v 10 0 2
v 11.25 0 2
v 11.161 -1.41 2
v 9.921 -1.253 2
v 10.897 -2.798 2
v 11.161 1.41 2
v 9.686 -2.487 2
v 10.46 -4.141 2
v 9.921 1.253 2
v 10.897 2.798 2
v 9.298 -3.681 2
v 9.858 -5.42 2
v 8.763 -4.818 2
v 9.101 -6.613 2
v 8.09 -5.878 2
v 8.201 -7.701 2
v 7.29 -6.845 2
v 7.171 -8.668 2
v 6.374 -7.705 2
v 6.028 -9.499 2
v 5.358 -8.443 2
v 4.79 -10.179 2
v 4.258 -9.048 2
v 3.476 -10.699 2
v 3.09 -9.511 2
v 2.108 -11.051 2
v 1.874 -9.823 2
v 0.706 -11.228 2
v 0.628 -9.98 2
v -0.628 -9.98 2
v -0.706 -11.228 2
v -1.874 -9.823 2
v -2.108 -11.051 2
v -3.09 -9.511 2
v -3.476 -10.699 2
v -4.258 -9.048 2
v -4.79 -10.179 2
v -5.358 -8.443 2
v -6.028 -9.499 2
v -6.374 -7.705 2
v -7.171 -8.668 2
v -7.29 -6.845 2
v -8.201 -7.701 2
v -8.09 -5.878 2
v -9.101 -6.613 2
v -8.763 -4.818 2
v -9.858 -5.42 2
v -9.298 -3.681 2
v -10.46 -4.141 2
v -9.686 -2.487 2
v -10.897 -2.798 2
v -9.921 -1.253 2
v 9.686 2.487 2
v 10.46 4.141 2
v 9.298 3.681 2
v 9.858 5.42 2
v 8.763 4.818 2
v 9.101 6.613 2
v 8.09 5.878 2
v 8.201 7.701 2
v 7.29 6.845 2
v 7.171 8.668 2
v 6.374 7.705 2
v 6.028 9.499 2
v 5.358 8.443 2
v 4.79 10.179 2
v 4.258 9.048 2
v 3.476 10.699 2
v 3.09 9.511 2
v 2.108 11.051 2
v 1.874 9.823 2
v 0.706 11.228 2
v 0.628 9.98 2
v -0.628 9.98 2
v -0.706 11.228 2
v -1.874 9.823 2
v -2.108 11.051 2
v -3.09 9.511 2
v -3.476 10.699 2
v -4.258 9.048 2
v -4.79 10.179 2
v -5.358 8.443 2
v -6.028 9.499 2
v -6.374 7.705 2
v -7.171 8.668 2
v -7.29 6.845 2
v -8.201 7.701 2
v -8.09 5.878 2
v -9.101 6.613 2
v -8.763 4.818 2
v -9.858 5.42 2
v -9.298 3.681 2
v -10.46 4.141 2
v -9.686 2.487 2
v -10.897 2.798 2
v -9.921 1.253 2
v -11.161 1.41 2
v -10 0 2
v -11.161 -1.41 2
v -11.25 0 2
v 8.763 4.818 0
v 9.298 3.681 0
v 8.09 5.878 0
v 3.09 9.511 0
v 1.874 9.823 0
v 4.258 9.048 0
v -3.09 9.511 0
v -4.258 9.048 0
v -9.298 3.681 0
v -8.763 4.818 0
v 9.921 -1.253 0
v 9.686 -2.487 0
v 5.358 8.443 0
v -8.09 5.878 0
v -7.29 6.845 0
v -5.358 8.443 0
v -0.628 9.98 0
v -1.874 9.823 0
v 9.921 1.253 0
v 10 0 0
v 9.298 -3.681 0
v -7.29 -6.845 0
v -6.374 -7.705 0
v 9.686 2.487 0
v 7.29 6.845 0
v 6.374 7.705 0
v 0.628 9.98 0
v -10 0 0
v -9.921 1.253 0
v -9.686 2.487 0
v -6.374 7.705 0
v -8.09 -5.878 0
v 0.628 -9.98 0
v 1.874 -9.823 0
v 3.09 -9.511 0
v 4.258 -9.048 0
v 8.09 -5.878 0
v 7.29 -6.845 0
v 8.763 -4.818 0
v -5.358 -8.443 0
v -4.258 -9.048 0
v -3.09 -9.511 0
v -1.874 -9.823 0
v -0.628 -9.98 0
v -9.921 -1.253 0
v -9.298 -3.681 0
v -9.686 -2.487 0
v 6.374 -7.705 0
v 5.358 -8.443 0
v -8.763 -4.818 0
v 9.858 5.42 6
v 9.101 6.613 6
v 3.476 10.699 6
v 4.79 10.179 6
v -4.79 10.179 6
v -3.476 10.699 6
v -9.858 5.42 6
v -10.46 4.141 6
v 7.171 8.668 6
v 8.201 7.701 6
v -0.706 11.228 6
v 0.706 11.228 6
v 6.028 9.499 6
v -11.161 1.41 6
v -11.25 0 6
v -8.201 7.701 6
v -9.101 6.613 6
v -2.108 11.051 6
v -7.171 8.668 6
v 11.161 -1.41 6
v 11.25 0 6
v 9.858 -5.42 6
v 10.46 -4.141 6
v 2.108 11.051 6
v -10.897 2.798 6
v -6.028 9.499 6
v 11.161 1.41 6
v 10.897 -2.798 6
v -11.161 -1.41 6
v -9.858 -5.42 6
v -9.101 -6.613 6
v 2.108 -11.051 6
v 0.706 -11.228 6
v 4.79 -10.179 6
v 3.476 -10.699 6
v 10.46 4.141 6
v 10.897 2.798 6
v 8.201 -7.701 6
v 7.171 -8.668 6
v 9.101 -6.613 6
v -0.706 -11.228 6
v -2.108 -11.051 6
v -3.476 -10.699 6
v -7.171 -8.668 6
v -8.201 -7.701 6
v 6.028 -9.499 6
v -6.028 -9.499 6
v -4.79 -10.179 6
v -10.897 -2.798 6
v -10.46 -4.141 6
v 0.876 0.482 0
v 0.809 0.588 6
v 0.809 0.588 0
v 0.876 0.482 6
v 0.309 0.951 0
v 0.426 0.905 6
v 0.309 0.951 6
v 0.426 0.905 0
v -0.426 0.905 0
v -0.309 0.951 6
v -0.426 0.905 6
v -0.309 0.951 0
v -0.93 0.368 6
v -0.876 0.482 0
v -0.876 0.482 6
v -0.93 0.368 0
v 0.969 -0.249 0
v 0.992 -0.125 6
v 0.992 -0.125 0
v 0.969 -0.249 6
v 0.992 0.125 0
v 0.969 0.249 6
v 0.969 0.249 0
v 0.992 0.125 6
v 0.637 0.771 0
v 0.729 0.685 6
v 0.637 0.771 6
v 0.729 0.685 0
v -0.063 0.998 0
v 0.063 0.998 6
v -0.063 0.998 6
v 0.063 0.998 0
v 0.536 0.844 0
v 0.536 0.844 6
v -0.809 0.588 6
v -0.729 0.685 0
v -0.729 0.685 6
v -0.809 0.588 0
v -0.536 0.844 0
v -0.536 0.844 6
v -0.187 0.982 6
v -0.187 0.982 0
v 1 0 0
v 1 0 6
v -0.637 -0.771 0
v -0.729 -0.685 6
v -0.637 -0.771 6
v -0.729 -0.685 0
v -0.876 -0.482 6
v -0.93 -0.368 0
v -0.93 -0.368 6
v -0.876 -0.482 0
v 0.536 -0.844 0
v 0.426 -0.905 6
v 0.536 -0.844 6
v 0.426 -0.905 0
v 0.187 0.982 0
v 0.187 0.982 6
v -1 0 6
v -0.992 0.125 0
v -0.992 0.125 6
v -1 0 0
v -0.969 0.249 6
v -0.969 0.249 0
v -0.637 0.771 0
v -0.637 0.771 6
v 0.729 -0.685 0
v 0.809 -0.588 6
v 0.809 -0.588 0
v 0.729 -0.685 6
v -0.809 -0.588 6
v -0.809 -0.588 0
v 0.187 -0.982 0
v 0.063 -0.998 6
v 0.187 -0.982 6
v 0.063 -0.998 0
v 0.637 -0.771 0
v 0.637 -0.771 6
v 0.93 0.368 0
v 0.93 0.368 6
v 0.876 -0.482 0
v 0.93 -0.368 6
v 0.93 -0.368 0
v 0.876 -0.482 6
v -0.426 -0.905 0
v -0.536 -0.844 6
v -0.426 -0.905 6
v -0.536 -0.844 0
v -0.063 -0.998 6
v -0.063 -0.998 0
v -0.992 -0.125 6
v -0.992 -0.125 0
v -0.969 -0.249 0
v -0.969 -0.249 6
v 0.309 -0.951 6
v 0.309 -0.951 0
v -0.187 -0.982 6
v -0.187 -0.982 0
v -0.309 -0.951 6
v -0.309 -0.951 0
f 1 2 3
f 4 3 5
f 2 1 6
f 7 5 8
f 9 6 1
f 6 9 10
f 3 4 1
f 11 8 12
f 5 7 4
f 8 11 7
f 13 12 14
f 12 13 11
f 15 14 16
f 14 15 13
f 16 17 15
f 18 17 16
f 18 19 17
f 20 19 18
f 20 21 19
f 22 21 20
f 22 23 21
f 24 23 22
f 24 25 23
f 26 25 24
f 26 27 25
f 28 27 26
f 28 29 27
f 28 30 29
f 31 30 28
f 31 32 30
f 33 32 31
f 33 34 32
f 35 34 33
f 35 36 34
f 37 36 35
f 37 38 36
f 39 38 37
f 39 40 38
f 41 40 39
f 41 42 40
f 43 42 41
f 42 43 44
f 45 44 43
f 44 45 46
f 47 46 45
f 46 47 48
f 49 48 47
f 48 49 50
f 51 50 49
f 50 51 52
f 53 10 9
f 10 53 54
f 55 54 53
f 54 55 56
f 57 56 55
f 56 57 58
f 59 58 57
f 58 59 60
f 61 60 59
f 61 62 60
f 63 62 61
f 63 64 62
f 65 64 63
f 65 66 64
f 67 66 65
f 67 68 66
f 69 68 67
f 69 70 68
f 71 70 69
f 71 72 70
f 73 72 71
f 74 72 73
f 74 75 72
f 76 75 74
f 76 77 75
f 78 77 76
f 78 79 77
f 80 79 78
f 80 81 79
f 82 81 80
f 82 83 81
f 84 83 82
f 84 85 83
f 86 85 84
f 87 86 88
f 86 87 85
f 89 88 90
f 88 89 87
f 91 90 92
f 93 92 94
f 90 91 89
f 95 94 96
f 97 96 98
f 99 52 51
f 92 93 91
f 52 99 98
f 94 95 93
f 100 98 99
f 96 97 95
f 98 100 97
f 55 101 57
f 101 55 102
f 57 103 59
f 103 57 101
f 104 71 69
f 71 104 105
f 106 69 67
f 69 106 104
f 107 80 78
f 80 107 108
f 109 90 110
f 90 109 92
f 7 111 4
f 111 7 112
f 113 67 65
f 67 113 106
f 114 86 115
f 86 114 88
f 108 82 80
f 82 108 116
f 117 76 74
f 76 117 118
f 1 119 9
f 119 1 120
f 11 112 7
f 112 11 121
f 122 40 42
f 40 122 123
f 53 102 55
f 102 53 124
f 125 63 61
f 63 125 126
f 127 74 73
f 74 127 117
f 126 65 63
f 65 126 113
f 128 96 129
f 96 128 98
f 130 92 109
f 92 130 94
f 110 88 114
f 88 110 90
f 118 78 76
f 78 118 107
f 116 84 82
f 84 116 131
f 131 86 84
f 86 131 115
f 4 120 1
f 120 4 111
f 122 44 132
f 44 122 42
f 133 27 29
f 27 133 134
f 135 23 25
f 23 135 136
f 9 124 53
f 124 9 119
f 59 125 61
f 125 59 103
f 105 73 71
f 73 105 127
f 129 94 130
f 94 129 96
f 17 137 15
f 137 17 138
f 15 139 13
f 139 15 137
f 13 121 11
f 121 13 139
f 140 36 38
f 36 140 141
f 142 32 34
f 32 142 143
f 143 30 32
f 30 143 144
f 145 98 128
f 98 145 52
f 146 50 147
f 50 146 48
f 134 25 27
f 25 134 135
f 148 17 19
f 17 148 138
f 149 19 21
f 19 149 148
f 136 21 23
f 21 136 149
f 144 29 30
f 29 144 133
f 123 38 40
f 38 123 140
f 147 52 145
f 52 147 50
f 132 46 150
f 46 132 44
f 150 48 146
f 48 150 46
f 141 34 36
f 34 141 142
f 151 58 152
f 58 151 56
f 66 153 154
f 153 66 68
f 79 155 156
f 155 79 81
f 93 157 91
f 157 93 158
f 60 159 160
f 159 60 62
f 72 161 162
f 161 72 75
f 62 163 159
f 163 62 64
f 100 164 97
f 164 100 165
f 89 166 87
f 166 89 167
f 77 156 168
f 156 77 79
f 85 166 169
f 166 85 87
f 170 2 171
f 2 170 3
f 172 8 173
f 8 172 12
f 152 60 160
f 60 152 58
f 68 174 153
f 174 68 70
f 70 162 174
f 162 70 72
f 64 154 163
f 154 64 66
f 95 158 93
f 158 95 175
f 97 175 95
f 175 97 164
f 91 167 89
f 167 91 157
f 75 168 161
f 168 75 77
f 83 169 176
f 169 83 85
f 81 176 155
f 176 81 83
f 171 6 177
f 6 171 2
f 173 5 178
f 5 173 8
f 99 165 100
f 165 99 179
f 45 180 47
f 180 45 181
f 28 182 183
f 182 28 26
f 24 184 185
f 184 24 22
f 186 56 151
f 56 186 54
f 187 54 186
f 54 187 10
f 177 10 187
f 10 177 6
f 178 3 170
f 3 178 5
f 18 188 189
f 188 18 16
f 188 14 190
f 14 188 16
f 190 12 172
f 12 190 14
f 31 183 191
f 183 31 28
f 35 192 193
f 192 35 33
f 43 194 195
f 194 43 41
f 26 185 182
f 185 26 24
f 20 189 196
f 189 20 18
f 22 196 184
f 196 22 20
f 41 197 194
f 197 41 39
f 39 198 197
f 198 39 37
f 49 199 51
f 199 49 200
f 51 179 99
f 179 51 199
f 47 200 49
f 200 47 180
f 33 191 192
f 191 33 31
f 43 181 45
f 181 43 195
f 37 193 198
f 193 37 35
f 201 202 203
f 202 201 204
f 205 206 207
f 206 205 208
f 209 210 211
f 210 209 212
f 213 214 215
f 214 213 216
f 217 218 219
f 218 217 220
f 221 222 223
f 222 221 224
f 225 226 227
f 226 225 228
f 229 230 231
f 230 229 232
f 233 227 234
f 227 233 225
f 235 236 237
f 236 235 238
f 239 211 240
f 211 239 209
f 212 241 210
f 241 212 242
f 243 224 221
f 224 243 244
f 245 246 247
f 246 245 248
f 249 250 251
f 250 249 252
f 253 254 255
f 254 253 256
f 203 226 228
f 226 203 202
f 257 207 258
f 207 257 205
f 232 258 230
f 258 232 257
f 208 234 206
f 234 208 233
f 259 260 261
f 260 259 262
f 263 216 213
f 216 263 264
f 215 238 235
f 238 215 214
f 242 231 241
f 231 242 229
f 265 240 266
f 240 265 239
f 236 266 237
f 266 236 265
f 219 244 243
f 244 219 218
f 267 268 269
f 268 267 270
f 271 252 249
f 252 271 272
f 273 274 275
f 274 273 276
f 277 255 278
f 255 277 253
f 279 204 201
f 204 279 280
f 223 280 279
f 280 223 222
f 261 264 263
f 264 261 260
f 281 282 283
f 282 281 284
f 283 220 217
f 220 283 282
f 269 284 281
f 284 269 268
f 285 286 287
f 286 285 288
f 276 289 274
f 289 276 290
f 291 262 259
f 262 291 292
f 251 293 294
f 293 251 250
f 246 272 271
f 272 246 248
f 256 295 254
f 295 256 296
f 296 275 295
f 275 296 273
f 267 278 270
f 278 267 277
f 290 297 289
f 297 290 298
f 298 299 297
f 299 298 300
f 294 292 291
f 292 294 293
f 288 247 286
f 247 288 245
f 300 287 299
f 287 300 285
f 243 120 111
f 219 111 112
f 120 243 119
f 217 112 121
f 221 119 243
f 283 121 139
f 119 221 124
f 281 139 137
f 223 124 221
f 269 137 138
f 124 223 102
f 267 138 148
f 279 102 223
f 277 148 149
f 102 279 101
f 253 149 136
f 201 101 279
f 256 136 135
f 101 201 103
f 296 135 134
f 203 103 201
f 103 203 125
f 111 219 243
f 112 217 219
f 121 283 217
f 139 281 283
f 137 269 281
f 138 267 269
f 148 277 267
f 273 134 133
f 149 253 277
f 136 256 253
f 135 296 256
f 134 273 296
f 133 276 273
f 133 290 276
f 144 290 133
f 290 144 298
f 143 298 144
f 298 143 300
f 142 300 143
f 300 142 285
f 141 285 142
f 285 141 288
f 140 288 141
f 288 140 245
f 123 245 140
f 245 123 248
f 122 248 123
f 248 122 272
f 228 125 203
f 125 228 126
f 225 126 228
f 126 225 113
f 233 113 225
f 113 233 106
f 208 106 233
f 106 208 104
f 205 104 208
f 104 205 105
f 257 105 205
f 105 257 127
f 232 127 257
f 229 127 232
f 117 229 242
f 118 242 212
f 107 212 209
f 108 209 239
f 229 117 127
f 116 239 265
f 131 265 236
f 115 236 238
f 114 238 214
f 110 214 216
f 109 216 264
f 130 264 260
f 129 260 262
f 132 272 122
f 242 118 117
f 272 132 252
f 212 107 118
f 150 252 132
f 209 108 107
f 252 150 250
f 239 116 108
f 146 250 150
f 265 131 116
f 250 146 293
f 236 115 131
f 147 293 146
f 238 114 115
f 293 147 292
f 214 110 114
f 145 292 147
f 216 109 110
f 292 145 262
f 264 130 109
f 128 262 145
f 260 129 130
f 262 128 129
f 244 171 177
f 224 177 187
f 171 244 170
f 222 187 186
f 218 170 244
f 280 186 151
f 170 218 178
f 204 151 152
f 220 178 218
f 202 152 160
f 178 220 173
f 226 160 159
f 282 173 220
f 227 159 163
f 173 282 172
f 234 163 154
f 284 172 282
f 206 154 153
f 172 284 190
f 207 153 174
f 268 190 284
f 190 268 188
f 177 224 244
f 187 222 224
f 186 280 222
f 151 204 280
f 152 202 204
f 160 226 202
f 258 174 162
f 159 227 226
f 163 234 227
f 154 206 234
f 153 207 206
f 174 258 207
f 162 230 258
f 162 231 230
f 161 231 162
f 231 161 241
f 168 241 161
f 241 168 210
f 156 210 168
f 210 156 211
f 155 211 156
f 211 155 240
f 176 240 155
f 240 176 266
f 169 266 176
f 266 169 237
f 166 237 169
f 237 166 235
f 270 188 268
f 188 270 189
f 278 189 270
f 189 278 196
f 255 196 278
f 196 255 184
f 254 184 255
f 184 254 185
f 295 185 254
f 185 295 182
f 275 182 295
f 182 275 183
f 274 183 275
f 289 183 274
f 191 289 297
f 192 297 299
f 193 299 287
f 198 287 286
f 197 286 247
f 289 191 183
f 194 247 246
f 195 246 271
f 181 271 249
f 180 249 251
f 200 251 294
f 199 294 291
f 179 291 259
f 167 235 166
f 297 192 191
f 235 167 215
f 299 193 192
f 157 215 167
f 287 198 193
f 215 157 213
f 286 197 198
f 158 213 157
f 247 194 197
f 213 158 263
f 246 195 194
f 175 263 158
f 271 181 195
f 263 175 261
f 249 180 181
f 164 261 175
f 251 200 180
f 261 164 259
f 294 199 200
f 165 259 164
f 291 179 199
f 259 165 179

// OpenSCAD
$fn = 50;


difference() {
	union() {
		*color(alpha = 1.0000000000, c = "gray") {
			translate(v = [0, 7, 0]) {
				linear_extrude(height = 12) {
					text(font = "Arial:style=Bold", halign = "center", size = 4.5000000000, text = "COMMENT bearing_plate_plate", valign = "center");
				}
			}
		}
		*color(alpha = 1.0000000000, c = "gray") {
			translate(v = [0, 14, 0]) {
				linear_extrude(height = 12) {
					text(font = "Arial:style=Bold", halign = "center", size = 4.5000000000, text = "COMMENT description oobb_cylinder_shape_p_type_12_depth_3_width_12_height_12_thickness_motor_servo_micro_01_shaft_p_t_12.0_radius_all_mode", valign = "center");
				}
			}
		}
		translate(v = [0, 0, -6.0000000000]) {
			cylinder(h = 12, r = 12.0000000000);
		}
		*color(alpha = 1.0000000000, c = "gray") {
			translate(v = [0, 7, 0]) {
				linear_extrude(height = 1) {
					text(font = "Arial:style=Bold", halign = "center", size = 4.5000000000, text = "COMMENT bearing_plate_slice", valign = "center");
				}
			}
		}
	}
	union() {
		translate(v = [18.0000000000, 0, -6.0000000000]) {
			rotate(a = [0, 180, 30.0000000000]) {
				difference() {
					union() {
						translate(v = [0, 0, -0.8500000000]) {
							cylinder(r1 = 1.5000000000, r2 = 2.4000000000);
						}
						translate(v = [0, 0, -12.0000000000]) {
							cylinder(h = 12, r = 1.5000000000);
						}
						translate(v = [0, 0, -12.0000000000]) {
							linear_extrude(height = 2.5000000000) {
								polygon(points = [[3.1735000000, 0.0000000000], [1.5867500000, 2.7483316189], [-1.5867500000, 2.7483316189], [-3.1735000000, 0.0000000000], [-1.5867500000, -2.7483316189], [1.5867500000, -2.7483316189]]);
							}
						}
						translate(v = [0, 0, -12.0000000000]) {
							cylinder(h = 12, r = 1.8000000000);
						}
						translate(v = [0, 0, -12.0000000000]) {
							linear_extrude(height = 2.5000000000) {
								polygon(points = [[3.1735000000, 0.0000000000], [1.5867500000, 2.7483316189], [-1.5867500000, 2.7483316189], [-3.1735000000, 0.0000000000], [-1.5867500000, -2.7483316189], [1.5867500000, -2.7483316189]]);
							}
						}
						translate(v = [0, 0, -12.0000000000]) {
							cylinder(h = 12, r = 1.5000000000);
						}
						translate(v = [0, 0, -12.0000000000]) {
							linear_extrude(height = 2.5000000000) {
								polygon(points = [[3.1735000000, 0.0000000000], [1.5867500000, 2.7483316189], [-1.5867500000, 2.7483316189], [-3.1735000000, 0.0000000000], [-1.5867500000, -2.7483316189], [1.5867500000, -2.7483316189]]);
							}
						}
					}
					union();
				}
			}
		}
		translate(v = [-18.0000000000, 0, -6.0000000000]) {
			rotate(a = [0, 180, 30.0000000000]) {
				difference() {
					union() {
						translate(v = [0, 0, -0.8500000000]) {
							cylinder(r1 = 1.5000000000, r2 = 2.4000000000);
						}
						translate(v = [0, 0, -12.0000000000]) {
							cylinder(h = 12, r = 1.5000000000);
						}
						translate(v = [0, 0, -12.0000000000]) {
							linear_extrude(height = 2.5000000000) {
								polygon(points = [[3.1735000000, 0.0000000000], [1.5867500000, 2.7483316189], [-1.5867500000, 2.7483316189], [-3.1735000000, 0.0000000000], [-1.5867500000, -2.7483316189], [1.5867500000, -2.7483316189]]);
							}
						}
						translate(v = [0, 0, -12.0000000000]) {
							cylinder(h = 12, r = 1.8000000000);
						}
						translate(v = [0, 0, -12.0000000000]) {
							linear_extrude(height = 2.5000000000) {
								polygon(points = [[3.1735000000, 0.0000000000], [1.5867500000, 2.7483316189], [-1.5867500000, 2.7483316189], [-3.1735000000, 0.0000000000], [-1.5867500000, -2.7483316189], [1.5867500000, -2.7483316189]]);
							}
						}
						translate(v = [0, 0, -12.0000000000]) {
							cylinder(h = 12, r = 1.5000000000);
						}
						translate(v = [0, 0, -12.0000000000]) {
							linear_extrude(height = 2.5000000000) {
								polygon(points = [[3.1735000000, 0.0000000000], [1.5867500000, 2.7483316189], [-1.5867500000, 2.7483316189], [-3.1735000000, 0.0000000000], [-1.5867500000, -2.7483316189], [1.5867500000, -2.7483316189]]);
							}
						}
					}
					union();
				}
			}
		}
		translate(v = [0, 18.0000000000, 6.0000000000]) {
			rotate(a = [0, 0, 0]) {
				difference() {
					union() {
						translate(v = [0, 0, -0.8500000000]) {
							cylinder(r1 = 1.5000000000, r2 = 2.4000000000);
						}
						translate(v = [0, 0, -12.0000000000]) {
							cylinder(h = 12, r = 1.5000000000);
						}
						translate(v = [0, 0, -12.0000000000]) {
							linear_extrude(height = 2.5000000000) {
								polygon(points = [[3.1735000000, 0.0000000000], [1.5867500000, 2.7483316189], [-1.5867500000, 2.7483316189], [-3.1735000000, 0.0000000000], [-1.5867500000, -2.7483316189], [1.5867500000, -2.7483316189]]);
							}
						}
						translate(v = [0, 0, -12.0000000000]) {
							cylinder(h = 12, r = 1.8000000000);
						}
						translate(v = [0, 0, -12.0000000000]) {
							linear_extrude(height = 2.5000000000) {
								polygon(points = [[3.1735000000, 0.0000000000], [1.5867500000, 2.7483316189], [-1.5867500000, 2.7483316189], [-3.1735000000, 0.0000000000], [-1.5867500000, -2.7483316189], [1.5867500000, -2.7483316189]]);
							}
						}
						translate(v = [0, 0, -12.0000000000]) {
							cylinder(h = 12, r = 1.5000000000);
						}
						translate(v = [0, 0, -12.0000000000]) {
							linear_extrude(height = 2.5000000000) {
								polygon(points = [[3.1735000000, 0.0000000000], [1.5867500000, 2.7483316189], [-1.5867500000, 2.7483316189], [-3.1735000000, 0.0000000000], [-1.5867500000, -2.7483316189], [1.5867500000, -2.7483316189]]);
							}
						}
					}
					union();
				}
			}
		}
		translate(v = [0, -18.0000000000, 6.0000000000]) {
			rotate(a = [0, 0, 0]) {
				difference() {
					union() {
						translate(v = [0, 0, -0.8500000000]) {
							cylinder(r1 = 1.5000000000, r2 = 2.4000000000);
						}
						translate(v = [0, 0, -12.0000000000]) {
							cylinder(h = 12, r = 1.5000000000);
						}
						translate(v = [0, 0, -12.0000000000]) {
							linear_extrude(height = 2.5000000000) {
								polygon(points = [[3.1735000000, 0.0000000000], [1.5867500000, 2.7483316189], [-1.5867500000, 2.7483316189], [-3.1735000000, 0.0000000000], [-1.5867500000, -2.7483316189], [1.5867500000, -2.7483316189]]);
							}
						}
						translate(v = [0, 0, -12.0000000000]) {
							cylinder(h = 12, r = 1.8000000000);
						}
						translate(v = [0, 0, -12.0000000000]) {
							linear_extrude(height = 2.5000000000) {
								polygon(points = [[3.1735000000, 0.0000000000], [1.5867500000, 2.7483316189], [-1.5867500000, 2.7483316189], [-3.1735000000, 0.0000000000], [-1.5867500000, -2.7483316189], [1.5867500000, -2.7483316189]]);
							}
						}
						translate(v = [0, 0, -12.0000000000]) {
							cylinder(h = 12, r = 1.5000000000);
						}
						translate(v = [0, 0, -12.0000000000]) {
							linear_extrude(height = 2.5000000000) {
								polygon(points = [[3.1735000000, 0.0000000000], [1.5867500000, 2.7483316189], [-1.5867500000, 2.7483316189], [-3.1735000000, 0.0000000000], [-1.5867500000, -2.7483316189], [1.5867500000, -2.7483316189]]);
							}
						}
					}
					union();
				}
			}
		}
		*color(alpha = 1.0000000000, c = "gray") {
			translate(v = [0, 14, 0]) {
				linear_extrude(height = 3) {
					text(font = "Arial:style=Bold", halign = "center", size = 4.5000000000, text = "COMMENT description oobb_bearing_shape_n_type_12_depth_3_width_3_height_12_thickness_motor_servo_micro_01_shaft_6704_bearing", valign = "center");
				}
			}
		}
		translate(v = [0, 0, -2.0000000000]) {
			union() {
				difference() {
					cylinder(h = 4, r = 13.5000000000);
					cylinder(h = 4, r = 10.0000000000);
				}
				difference() {
					translate(v = [0, 0, -50]) {
						cylinder(h = 100, r = 12.2500000000);
					}
					translate(v = [0, 0, -50]) {
						cylinder(h = 100, r = 11.2500000000);
					}
				}
			}
		}
		*color(alpha = 1.0000000000, c = "gray") {
			translate(v = [0, 14, 0]) {
				linear_extrude(height = 3) {
					text(font = "Arial:style=Bold", halign = "center", size = 4.5000000000, text = "COMMENT description oobb_holes_shape_n_type_m6_radius_name_3_width_3_height_12_thickness_motor_servo_micro_01_shaft_perimeter_miss_middle_holes", valign = "center");
				}
			}
		}
		translate(v = [-15.0000000000, -15.0000000000, -50.0000000000]) {
			cylinder(h = 100, r = 3.0000000000);
		}
		translate(v = [-15.0000000000, 15.0000000000, -50.0000000000]) {
			cylinder(h = 100, r = 3.0000000000);
		}
		translate(v = [15.0000000000, -15.0000000000, -50.0000000000]) {
			cylinder(h = 100, r = 3.0000000000);
		}
		translate(v = [15.0000000000, 15.0000000000, -50.0000000000]) {
			cylinder(h = 100, r = 3.0000000000);
		}
		*color(alpha = 1.0000000000, c = "gray") {
			translate(v = [0, 14, 0]) {
				linear_extrude(height = 3) {
					text(font = "Arial:style=Bold", halign = "center", size = 4.5000000000, text = "COMMENT description oobb_motor_servo_micro_01_shape_n_type_3_width_3_height_12_thickness_motor_servo_micro_01_shaft_shaft_part", valign = "center");
				}
			}
		}
		translate(v = [0, 0, -6.0000000000]) {
			cylinder(h = 3, r1 = 2.5000000000, r2 = 2.4000000000);
		}
		translate(v = [0, 0, -50.0000000000]) {
			cylinder(h = 100, r = 1.0000000000);
		}
		*color(alpha = 1.0000000000, c = "gray") {
			translate(v = [18.0000000000, 14, -6.0000000000]) {
				rotate(a = [0, 180, 30.0000000000]) {
					linear_extrude(height = 3) {
						text(font = "Arial:style=Bold", halign = "center", size = 4.5000000000, text = "COMMENT description oobb_screw_countersunk_shape_n_type_m3_radius_name_12_depth_18.0_0_-6.0_pos_3_width_3_height_12_thickness_motor_servo_micro_01_shaft_0_180_30.0_rot_true_nut_true_overhang", valign = "center");
					}
				}
			}
		}
		*color(alpha = 1.0000000000, c = "gray") {
			translate(v = [-18.0000000000, 14, -6.0000000000]) {
				rotate(a = [0, 180, 30.0000000000]) {
					linear_extrude(height = 3) {
						text(font = "Arial:style=Bold", halign = "center", size = 4.5000000000, text = "COMMENT description oobb_screw_countersunk_shape_n_type_m3_radius_name_12_depth_-18.0_0_-6.0_pos_3_width_3_height_12_thickness_motor_servo_micro_01_shaft_0_180_30.0_rot_true_nut_true_overhang", valign = "center");
					}
				}
			}
		}
		*color(alpha = 1.0000000000, c = "gray") {
			translate(v = [0, 32.0000000000, 6.0000000000]) {
				linear_extrude(height = 3) {
					text(font = "Arial:style=Bold", halign = "center", size = 4.5000000000, text = "COMMENT description oobb_screw_countersunk_shape_n_type_m3_radius_name_12_depth_0_18.0_6.0_pos_3_width_3_height_12_thickness_motor_servo_micro_01_shaft_0_0_0_rot_true_nut_true_overhang", valign = "center");
				}
			}
		}
		*color(alpha = 1.0000000000, c = "gray") {
			translate(v = [0, -4.0000000000, 6.0000000000]) {
				linear_extrude(height = 3) {
					text(font = "Arial:style=Bold", halign = "center", size = 4.5000000000, text = "COMMENT description oobb_screw_countersunk_shape_n_type_m3_radius_name_12_depth_0_-18.0_6.0_pos_3_width_3_height_12_thickness_motor_servo_micro_01_shaft_0_0_0_rot_true_nut_true_overhang", valign = "center");
				}
			}
		}
		*color(alpha = 1.0000000000, c = "gray") {
			translate(v = [0, 14, 0]) {
				linear_extrude(height = 1) {
					text(font = "Arial:style=Bold", halign = "center", size = 4.5000000000, text = "COMMENT description oobb_slice_shape_n_type_3dpr_mode_top_zz", valign = "center");
				}
			}
		}
		translate(v = [-250, -250, -500]) {
			cube(size = [500, 500, 500]);
		}
	}
}
